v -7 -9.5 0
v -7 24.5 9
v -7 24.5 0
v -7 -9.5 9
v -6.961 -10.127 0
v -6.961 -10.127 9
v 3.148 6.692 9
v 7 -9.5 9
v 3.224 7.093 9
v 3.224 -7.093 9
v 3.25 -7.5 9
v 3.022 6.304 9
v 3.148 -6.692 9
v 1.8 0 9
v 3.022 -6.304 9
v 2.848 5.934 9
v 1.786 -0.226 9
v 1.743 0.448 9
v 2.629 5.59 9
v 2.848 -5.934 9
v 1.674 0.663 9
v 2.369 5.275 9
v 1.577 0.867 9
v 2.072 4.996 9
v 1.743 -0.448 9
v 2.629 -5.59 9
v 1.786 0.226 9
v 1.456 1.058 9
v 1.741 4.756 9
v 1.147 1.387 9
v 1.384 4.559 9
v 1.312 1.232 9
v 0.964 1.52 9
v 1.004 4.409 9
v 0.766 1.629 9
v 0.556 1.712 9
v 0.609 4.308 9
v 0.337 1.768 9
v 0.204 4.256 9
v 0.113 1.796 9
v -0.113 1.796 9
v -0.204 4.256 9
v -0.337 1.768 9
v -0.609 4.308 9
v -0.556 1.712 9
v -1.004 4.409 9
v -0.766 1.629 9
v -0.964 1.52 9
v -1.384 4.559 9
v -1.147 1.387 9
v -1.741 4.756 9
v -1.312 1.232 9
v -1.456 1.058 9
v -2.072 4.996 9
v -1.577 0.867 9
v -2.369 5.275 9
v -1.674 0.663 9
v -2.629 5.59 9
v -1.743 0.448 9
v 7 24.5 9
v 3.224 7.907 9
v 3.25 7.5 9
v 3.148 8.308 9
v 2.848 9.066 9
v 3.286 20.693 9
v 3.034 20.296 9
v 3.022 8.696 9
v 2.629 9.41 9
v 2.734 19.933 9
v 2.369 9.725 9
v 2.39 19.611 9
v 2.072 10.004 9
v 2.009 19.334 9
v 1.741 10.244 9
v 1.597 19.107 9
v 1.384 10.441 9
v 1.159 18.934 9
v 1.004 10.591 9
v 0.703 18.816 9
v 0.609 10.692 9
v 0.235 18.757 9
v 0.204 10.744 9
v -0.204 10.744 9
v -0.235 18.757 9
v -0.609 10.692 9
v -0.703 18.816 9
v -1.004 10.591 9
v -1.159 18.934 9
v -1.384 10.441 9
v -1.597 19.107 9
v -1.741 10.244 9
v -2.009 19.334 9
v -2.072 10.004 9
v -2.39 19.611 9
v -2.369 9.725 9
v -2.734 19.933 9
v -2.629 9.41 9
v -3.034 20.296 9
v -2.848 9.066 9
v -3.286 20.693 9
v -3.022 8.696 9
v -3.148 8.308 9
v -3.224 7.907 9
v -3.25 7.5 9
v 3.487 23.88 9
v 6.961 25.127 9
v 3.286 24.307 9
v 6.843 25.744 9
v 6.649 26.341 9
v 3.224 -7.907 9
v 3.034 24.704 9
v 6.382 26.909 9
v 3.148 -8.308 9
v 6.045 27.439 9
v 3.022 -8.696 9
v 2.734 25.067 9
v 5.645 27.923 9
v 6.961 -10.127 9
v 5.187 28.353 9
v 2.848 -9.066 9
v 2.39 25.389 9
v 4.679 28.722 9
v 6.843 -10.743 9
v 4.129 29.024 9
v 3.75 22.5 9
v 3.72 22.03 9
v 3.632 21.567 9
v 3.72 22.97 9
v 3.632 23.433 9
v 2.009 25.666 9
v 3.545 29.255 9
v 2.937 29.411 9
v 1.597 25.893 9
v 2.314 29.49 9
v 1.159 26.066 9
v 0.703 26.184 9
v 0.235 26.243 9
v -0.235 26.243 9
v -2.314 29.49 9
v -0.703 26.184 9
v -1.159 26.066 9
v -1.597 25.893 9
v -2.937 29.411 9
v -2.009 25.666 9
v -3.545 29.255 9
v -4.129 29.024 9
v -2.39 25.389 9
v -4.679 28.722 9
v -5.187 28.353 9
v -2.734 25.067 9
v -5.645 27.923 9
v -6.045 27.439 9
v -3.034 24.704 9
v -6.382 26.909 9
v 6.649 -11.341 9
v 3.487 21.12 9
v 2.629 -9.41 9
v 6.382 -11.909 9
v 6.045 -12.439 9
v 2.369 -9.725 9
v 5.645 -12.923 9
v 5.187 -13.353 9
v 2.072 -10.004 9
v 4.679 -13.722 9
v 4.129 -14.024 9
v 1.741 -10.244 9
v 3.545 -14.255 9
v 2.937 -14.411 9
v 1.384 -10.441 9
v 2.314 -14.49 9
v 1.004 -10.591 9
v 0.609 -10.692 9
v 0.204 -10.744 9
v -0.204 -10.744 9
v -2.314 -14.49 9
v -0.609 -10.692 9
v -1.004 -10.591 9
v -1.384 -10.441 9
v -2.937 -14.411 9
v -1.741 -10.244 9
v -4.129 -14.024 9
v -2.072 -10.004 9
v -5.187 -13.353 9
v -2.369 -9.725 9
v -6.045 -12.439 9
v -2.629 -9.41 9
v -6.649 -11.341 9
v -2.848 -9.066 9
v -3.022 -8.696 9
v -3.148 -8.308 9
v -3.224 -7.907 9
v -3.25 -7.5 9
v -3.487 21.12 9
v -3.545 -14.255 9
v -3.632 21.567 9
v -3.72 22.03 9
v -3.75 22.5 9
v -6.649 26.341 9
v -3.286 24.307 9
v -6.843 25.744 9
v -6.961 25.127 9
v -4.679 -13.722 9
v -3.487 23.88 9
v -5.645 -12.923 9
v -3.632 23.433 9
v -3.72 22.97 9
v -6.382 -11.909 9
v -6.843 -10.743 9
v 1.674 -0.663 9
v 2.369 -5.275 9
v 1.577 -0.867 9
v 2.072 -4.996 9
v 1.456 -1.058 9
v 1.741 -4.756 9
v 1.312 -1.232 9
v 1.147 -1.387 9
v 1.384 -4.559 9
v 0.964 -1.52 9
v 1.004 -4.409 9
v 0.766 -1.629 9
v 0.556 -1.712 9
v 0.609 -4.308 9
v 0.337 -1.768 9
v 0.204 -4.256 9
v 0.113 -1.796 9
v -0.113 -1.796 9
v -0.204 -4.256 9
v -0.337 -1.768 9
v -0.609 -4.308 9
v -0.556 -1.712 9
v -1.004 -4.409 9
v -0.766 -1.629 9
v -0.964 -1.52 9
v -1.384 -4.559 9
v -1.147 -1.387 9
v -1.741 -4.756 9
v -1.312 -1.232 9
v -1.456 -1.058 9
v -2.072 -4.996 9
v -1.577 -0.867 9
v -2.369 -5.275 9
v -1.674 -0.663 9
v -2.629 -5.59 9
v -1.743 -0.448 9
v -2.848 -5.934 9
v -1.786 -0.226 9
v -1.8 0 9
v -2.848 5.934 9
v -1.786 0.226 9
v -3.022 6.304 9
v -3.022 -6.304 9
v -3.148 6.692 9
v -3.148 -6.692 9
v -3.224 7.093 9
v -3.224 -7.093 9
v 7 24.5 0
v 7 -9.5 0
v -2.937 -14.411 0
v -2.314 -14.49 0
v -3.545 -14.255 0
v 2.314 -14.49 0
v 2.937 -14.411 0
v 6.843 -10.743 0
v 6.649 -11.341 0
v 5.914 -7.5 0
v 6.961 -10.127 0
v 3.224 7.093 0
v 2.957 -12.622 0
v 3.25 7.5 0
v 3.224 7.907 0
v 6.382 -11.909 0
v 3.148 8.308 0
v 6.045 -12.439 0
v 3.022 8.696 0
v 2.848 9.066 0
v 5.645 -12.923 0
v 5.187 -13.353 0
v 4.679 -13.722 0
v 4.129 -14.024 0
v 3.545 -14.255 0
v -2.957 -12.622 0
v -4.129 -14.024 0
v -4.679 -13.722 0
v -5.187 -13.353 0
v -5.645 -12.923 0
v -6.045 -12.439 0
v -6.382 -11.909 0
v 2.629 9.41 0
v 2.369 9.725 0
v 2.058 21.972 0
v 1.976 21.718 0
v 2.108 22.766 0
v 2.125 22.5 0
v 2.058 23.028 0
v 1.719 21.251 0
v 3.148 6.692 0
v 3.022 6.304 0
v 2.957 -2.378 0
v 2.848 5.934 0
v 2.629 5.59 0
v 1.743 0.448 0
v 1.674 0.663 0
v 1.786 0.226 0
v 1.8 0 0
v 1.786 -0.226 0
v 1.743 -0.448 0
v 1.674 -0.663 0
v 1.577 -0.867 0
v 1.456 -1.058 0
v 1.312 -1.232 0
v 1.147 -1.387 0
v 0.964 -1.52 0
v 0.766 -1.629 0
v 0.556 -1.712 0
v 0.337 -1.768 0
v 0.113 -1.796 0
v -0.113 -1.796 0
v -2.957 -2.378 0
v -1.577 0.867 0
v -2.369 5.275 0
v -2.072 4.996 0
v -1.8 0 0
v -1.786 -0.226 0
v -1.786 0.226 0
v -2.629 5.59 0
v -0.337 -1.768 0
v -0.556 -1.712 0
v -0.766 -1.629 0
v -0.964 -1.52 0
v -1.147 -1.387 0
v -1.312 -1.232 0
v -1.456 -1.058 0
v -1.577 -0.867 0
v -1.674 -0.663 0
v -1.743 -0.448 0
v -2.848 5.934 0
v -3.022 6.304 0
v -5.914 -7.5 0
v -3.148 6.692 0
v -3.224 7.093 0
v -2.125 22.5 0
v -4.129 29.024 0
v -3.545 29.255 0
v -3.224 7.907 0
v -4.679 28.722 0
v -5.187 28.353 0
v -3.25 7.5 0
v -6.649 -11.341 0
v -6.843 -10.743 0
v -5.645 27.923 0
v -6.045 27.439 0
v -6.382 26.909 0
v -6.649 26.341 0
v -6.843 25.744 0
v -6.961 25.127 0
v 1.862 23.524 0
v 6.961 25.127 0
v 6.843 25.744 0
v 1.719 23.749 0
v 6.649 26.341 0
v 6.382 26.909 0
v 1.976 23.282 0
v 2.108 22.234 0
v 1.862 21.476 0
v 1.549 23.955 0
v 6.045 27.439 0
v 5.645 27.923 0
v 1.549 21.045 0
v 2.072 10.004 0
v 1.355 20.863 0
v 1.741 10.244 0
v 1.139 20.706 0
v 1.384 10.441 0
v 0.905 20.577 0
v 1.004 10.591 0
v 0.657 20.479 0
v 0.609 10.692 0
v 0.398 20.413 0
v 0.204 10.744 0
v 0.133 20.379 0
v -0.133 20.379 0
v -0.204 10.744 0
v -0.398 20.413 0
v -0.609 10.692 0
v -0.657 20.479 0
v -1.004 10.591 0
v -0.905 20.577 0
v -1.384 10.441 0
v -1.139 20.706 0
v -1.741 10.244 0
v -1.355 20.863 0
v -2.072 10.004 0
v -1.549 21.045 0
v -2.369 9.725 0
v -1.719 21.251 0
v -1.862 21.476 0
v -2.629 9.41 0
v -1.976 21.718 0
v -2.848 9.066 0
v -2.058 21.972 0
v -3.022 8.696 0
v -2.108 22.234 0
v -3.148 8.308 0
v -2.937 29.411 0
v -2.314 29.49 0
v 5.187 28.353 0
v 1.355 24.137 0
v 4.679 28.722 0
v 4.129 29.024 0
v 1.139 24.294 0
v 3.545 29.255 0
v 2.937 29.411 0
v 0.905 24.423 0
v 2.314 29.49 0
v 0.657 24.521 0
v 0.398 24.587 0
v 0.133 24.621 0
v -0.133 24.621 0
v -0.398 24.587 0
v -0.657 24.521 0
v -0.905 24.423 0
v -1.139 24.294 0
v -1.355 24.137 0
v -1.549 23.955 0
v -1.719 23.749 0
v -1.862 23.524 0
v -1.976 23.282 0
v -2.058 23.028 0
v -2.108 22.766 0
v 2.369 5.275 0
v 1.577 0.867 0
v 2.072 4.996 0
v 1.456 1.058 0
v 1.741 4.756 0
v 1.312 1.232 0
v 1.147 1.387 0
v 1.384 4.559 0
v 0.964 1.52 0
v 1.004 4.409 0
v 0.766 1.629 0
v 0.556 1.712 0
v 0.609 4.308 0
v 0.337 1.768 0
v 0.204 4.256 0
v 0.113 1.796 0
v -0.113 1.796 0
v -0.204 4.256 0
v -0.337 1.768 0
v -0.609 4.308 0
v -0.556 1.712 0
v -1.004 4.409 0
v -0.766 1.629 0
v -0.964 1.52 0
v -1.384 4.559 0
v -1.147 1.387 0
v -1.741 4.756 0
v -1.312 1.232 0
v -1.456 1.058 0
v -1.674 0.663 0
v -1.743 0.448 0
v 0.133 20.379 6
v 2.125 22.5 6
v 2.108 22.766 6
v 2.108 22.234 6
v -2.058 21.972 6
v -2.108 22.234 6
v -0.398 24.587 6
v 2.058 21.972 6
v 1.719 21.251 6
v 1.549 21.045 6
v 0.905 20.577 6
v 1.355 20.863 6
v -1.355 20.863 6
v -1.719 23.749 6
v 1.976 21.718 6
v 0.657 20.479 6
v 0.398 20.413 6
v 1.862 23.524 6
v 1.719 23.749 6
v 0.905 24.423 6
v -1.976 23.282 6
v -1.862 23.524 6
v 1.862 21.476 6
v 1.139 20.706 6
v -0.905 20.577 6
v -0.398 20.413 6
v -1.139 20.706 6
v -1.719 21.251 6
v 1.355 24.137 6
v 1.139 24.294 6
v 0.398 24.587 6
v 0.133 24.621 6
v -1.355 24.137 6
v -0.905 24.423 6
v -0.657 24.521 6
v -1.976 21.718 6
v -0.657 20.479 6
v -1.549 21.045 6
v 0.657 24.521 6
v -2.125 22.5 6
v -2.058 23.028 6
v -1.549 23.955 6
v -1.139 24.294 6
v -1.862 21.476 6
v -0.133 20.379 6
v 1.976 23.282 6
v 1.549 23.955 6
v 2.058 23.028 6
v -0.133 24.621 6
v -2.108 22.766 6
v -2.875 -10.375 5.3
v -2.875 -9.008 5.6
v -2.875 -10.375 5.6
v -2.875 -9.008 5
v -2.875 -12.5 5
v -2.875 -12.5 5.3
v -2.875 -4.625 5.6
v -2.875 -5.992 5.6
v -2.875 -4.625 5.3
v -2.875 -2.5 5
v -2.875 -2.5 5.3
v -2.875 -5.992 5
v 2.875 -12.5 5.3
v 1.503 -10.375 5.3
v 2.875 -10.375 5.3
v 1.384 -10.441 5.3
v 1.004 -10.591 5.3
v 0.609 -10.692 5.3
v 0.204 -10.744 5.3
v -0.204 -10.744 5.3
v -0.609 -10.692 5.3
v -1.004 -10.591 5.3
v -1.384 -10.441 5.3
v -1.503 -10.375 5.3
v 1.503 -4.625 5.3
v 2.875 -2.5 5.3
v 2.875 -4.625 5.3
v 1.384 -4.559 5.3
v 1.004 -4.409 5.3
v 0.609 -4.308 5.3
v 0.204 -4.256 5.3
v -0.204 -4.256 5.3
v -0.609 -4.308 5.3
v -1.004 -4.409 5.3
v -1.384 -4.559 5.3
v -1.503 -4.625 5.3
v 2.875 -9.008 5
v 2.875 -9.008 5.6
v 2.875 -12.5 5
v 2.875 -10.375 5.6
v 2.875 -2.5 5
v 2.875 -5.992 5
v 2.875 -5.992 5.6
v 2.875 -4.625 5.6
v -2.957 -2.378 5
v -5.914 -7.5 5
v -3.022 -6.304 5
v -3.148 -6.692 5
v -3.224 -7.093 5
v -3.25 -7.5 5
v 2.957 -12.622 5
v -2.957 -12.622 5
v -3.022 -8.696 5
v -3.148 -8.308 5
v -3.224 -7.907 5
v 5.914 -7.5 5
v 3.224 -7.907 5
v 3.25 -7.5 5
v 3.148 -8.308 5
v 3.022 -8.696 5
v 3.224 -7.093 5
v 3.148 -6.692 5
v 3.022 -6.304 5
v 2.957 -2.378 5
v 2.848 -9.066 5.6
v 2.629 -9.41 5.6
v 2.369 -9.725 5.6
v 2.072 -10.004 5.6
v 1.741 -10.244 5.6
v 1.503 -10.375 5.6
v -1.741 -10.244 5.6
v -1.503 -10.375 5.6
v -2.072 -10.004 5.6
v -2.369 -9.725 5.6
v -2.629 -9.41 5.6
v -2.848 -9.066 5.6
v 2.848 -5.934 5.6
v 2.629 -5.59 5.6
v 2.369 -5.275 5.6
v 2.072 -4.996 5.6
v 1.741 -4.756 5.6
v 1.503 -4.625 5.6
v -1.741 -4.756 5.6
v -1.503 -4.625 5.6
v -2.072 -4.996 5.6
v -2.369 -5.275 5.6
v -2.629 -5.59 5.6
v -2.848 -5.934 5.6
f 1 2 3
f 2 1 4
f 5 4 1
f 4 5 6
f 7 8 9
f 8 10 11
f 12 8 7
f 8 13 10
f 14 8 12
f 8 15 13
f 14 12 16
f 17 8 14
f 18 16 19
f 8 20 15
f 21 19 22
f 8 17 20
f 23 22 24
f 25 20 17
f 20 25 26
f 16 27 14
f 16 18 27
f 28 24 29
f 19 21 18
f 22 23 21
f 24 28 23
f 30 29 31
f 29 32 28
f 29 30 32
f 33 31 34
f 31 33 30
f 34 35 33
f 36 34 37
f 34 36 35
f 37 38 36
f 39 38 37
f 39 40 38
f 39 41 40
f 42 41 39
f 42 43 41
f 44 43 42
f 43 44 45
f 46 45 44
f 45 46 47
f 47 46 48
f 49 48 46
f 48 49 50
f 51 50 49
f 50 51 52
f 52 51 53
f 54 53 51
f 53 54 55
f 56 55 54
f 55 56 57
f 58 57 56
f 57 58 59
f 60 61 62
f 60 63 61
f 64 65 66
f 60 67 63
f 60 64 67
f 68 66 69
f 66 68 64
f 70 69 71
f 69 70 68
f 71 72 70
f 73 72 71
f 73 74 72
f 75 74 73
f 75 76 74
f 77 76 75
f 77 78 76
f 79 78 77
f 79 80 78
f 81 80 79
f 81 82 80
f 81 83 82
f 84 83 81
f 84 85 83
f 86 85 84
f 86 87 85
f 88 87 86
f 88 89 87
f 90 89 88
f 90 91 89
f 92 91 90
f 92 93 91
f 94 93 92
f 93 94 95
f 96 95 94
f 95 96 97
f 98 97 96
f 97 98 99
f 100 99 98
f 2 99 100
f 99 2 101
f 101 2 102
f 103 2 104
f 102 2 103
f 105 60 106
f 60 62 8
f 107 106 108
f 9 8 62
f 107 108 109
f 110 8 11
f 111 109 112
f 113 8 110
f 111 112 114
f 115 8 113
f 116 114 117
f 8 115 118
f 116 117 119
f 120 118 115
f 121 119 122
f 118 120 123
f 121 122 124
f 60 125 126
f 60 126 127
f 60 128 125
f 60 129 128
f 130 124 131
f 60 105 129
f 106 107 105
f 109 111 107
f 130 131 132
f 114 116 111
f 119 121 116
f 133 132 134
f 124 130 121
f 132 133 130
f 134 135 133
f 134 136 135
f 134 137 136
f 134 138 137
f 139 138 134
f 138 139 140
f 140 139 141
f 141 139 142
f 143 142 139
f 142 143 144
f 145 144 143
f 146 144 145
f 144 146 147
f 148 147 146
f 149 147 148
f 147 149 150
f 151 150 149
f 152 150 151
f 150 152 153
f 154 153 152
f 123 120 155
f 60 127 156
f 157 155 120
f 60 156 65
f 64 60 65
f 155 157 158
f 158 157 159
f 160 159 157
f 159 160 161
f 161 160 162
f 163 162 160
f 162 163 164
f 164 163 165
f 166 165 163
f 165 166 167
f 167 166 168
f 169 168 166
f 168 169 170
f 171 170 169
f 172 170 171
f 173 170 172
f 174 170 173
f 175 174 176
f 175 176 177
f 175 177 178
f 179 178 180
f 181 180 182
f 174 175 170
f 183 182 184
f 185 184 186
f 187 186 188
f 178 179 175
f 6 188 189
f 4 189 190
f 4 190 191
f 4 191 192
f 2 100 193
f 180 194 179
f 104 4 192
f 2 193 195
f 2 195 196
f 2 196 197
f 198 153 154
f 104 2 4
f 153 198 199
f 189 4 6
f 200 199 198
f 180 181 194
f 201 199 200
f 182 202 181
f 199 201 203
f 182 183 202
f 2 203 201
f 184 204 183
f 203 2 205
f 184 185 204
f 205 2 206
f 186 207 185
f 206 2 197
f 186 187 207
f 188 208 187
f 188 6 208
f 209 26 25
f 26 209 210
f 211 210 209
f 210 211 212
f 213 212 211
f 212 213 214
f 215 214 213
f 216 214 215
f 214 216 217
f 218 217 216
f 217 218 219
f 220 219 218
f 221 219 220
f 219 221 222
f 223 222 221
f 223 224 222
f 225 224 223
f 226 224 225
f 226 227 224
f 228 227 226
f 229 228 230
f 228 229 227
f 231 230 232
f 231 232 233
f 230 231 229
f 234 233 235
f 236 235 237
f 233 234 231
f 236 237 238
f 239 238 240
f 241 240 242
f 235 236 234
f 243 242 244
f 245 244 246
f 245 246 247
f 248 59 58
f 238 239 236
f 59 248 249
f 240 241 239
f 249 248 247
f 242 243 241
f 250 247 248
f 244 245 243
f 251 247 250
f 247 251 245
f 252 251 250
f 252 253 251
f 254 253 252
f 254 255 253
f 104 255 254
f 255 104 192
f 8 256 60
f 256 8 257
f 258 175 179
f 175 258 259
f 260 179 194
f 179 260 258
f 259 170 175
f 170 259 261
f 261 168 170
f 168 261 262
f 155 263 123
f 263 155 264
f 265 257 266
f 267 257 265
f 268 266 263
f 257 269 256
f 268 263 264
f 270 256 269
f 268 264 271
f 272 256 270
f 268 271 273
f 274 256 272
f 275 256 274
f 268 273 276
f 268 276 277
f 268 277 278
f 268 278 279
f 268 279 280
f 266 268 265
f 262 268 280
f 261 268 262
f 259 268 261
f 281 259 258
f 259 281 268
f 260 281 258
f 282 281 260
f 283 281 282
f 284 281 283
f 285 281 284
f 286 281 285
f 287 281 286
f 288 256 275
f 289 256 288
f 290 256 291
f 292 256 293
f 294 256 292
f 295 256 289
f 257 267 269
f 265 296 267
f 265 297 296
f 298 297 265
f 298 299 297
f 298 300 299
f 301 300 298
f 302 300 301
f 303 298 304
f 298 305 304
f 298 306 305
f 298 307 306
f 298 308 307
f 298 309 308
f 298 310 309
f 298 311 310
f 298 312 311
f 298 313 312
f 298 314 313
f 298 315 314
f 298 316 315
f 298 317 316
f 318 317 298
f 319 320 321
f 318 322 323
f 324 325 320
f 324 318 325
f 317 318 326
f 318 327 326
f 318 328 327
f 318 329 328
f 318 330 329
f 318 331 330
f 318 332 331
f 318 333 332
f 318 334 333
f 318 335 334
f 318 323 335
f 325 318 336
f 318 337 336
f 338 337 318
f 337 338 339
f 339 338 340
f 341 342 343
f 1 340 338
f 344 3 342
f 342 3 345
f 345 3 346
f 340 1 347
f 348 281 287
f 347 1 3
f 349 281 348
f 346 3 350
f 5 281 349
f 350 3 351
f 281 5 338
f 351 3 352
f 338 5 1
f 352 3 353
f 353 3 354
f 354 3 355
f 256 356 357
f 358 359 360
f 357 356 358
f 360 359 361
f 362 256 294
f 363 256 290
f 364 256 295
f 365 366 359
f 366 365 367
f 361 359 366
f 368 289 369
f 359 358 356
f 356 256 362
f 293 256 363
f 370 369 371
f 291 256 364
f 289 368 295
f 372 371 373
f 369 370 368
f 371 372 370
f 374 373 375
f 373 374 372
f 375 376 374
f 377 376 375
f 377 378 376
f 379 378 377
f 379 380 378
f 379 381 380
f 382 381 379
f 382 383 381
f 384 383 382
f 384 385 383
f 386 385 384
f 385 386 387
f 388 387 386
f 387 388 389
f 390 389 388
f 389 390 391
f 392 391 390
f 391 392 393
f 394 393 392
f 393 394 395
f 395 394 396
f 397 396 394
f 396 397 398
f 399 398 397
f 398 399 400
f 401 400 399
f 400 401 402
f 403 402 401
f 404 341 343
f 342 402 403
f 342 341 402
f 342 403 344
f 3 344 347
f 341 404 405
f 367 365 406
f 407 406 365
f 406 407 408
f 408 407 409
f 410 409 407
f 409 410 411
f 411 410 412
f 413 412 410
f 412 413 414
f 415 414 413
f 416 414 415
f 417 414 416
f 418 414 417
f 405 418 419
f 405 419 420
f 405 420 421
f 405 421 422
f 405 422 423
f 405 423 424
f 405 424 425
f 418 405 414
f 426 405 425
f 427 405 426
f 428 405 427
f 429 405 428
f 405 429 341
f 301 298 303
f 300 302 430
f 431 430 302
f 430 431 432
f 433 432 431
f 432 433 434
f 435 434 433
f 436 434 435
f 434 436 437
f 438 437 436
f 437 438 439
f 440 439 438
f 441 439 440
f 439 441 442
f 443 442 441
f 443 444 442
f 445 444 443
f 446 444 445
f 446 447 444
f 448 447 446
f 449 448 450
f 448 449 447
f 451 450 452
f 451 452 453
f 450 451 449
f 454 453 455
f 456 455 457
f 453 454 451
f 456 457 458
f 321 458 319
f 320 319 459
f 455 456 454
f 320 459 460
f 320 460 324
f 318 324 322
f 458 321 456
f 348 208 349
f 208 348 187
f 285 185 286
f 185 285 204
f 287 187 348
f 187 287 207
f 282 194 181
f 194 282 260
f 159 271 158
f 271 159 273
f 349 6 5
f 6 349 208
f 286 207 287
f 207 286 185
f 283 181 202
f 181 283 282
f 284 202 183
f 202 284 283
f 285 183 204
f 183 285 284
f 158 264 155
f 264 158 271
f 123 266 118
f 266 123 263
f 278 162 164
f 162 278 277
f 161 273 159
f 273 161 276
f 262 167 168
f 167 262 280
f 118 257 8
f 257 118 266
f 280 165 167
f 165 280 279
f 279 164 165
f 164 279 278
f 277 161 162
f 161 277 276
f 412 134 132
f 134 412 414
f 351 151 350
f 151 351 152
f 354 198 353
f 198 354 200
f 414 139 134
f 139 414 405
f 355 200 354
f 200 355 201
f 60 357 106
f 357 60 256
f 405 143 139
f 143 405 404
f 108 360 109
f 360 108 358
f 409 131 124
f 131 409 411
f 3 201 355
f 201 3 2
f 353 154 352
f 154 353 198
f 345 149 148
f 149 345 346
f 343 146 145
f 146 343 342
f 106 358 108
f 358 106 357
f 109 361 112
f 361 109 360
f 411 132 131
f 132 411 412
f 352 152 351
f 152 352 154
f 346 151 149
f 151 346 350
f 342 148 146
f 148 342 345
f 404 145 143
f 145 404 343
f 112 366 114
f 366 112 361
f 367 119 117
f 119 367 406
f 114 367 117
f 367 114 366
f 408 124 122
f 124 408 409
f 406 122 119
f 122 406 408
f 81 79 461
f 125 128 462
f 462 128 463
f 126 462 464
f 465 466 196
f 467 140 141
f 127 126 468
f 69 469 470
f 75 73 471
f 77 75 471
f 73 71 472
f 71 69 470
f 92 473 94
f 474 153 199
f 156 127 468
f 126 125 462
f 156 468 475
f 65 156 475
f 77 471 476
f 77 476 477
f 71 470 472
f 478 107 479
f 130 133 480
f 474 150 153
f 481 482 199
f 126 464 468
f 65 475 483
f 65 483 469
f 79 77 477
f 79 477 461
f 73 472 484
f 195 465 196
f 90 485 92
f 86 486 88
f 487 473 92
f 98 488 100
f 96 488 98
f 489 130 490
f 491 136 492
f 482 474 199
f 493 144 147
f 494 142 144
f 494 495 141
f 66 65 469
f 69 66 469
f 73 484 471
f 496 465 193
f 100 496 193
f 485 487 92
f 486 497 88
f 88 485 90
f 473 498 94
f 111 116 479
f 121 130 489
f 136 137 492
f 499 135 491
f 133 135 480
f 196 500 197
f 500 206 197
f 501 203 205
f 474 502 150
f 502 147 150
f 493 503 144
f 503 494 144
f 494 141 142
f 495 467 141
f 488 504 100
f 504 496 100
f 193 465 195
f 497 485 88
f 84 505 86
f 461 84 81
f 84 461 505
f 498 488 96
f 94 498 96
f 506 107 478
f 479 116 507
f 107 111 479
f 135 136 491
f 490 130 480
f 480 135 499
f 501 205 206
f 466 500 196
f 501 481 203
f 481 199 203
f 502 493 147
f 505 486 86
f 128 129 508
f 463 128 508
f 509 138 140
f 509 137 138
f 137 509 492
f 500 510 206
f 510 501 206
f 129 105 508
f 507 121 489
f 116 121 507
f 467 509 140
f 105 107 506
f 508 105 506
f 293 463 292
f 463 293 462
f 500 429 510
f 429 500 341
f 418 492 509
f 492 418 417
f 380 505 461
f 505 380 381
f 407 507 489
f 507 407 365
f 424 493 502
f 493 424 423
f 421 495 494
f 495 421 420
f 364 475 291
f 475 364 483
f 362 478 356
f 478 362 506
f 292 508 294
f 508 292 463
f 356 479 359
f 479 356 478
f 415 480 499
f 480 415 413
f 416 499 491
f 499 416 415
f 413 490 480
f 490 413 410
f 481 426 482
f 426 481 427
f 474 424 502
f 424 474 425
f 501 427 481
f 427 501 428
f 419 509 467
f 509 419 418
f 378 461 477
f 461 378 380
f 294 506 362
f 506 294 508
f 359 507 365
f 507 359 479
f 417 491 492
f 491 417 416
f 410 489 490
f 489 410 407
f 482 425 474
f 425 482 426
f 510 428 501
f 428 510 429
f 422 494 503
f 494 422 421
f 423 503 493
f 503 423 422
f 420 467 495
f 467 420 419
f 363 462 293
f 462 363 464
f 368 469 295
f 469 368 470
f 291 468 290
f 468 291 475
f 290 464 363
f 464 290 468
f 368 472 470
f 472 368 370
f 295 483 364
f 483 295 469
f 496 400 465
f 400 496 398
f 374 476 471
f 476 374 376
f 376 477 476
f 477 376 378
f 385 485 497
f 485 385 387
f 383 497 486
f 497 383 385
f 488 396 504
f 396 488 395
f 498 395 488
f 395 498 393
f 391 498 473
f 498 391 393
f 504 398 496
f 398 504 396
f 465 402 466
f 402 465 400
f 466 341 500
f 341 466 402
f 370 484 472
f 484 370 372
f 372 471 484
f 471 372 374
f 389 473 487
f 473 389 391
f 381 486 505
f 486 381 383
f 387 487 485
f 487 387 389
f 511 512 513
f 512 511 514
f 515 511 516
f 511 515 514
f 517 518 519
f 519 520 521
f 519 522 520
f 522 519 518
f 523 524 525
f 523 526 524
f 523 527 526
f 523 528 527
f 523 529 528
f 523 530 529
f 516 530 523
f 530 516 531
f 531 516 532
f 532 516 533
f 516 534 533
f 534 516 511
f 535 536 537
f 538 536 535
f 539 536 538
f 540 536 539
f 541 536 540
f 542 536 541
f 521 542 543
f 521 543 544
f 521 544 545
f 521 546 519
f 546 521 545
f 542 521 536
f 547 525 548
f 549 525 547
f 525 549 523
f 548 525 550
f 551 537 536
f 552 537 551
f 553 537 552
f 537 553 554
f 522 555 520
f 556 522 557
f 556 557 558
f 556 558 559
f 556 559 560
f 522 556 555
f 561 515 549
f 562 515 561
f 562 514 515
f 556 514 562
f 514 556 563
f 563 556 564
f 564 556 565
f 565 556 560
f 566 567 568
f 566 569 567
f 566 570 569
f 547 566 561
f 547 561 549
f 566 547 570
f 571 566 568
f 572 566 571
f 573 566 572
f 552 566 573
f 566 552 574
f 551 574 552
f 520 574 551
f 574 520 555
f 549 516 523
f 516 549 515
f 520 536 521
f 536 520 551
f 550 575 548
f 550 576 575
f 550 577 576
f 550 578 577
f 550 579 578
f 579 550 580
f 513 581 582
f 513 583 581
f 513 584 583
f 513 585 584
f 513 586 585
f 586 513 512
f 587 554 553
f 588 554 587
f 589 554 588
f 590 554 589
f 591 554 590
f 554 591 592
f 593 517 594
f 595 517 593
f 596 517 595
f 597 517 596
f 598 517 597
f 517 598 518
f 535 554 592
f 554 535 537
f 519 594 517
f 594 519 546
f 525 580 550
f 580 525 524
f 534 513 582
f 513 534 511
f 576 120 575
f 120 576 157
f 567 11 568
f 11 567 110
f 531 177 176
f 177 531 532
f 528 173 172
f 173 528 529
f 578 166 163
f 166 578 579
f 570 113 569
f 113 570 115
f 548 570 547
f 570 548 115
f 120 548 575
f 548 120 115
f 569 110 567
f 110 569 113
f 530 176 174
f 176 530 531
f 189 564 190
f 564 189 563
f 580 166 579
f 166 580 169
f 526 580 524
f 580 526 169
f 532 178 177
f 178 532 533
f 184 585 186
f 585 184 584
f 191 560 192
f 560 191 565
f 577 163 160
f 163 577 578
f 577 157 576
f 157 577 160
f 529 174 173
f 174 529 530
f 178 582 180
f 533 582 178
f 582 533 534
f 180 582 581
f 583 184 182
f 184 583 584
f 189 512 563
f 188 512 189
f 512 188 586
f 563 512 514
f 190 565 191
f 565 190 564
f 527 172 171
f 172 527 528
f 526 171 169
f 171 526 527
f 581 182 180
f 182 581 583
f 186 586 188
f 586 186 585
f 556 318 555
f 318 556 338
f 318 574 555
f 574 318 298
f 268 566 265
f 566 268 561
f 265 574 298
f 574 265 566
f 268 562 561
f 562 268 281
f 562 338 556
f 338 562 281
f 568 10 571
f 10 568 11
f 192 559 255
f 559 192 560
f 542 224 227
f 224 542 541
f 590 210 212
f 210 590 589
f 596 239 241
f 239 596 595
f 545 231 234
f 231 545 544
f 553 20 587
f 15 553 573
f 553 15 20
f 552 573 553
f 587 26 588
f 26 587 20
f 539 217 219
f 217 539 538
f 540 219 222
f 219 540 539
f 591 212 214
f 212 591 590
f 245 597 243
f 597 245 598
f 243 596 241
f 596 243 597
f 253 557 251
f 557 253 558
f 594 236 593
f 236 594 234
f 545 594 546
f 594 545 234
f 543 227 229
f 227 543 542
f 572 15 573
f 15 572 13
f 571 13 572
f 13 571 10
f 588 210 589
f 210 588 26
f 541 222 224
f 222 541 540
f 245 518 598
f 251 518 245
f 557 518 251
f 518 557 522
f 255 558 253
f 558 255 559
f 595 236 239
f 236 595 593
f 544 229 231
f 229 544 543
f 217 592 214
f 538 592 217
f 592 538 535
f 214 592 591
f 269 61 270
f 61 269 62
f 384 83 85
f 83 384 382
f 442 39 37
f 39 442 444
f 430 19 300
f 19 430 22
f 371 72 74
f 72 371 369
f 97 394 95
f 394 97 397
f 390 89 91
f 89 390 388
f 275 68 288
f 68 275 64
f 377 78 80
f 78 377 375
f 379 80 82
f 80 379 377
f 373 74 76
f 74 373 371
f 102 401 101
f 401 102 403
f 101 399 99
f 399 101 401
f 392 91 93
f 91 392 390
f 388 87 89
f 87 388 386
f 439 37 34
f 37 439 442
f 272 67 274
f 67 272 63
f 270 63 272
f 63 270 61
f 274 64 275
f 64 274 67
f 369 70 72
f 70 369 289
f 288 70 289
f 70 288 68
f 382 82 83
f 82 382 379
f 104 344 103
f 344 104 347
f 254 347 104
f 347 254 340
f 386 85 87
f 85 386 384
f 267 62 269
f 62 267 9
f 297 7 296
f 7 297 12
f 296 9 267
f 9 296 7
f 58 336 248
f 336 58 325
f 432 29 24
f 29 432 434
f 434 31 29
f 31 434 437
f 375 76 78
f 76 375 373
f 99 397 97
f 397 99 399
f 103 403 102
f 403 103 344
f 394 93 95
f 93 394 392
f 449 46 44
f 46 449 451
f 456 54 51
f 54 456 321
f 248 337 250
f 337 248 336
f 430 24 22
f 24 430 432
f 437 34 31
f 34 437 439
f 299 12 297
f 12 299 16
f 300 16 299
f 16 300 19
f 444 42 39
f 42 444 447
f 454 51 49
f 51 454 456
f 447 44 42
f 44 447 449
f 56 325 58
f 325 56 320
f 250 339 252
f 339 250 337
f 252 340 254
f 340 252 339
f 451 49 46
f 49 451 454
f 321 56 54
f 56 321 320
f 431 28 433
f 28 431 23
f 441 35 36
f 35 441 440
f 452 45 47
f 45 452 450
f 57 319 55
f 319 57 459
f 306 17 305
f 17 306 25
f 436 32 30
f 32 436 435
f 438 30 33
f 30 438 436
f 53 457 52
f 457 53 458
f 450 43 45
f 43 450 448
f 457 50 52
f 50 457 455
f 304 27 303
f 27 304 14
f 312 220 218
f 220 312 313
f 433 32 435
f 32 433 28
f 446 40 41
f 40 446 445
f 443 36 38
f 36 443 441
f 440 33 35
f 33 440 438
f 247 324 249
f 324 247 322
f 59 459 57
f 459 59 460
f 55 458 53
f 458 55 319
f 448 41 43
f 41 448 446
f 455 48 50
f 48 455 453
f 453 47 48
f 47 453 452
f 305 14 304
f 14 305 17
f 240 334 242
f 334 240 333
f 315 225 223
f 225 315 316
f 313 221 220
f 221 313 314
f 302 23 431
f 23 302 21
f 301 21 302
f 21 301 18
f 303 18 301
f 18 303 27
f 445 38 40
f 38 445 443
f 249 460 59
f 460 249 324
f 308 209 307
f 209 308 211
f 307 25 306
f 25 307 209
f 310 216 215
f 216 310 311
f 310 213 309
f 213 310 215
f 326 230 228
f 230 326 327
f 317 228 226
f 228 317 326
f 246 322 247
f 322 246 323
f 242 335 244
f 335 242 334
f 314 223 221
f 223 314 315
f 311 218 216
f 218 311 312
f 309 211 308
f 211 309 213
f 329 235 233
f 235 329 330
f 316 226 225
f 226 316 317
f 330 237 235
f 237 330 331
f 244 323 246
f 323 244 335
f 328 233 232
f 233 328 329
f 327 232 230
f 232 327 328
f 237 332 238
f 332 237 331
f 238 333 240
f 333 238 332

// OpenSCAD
$fn = 50;


difference() {
	union() {
		hull() {
			translate(v = [-2.0000000000, 9.5000000000, 0]) {
				cylinder(h = 9, r = 5);
			}
			translate(v = [2.0000000000, 9.5000000000, 0]) {
				cylinder(h = 9, r = 5);
			}
			translate(v = [-2.0000000000, -9.5000000000, 0]) {
				cylinder(h = 9, r = 5);
			}
			translate(v = [2.0000000000, -9.5000000000, 0]) {
				cylinder(h = 9, r = 5);
			}
		}
		translate(v = [0.0000000000, 15.0000000000, 0]) {
			hull() {
				translate(v = [-2.0000000000, 9.5000000000, 0]) {
					cylinder(h = 9, r = 5);
				}
				translate(v = [2.0000000000, 9.5000000000, 0]) {
					cylinder(h = 9, r = 5);
				}
				translate(v = [-2.0000000000, -9.5000000000, 0]) {
					cylinder(h = 9, r = 5);
				}
				translate(v = [2.0000000000, -9.5000000000, 0]) {
					cylinder(h = 9, r = 5);
				}
			}
		}
		translate(v = [0.0000000000, 15.0000000000, 0]) {
			hull() {
				translate(v = [-2.0000000000, 9.5000000000, 0]) {
					cylinder(h = 9, r = 5);
				}
				translate(v = [2.0000000000, 9.5000000000, 0]) {
					cylinder(h = 9, r = 5);
				}
				translate(v = [-2.0000000000, -9.5000000000, 0]) {
					cylinder(h = 9, r = 5);
				}
				translate(v = [2.0000000000, -9.5000000000, 0]) {
					cylinder(h = 9, r = 5);
				}
			}
		}
	}
	union() {
		translate(v = [0.0000000000, 22.5000000000, 9]) {
			rotate(a = [0, 0, 0]) {
				difference() {
					union() {
						#translate(v = [0, 0, -9.0000000000]) {
							cylinder(h = 9, r = 2.0000000000);
						}
						#translate(v = [0, 0, -3]) {
							cylinder(h = 3, r1 = 2.1250000000, r2 = 3.7500000000);
						}
						#translate(v = [0, 0, -9.0000000000]) {
							cylinder(h = 9, r = 2.1250000000);
						}
						#translate(v = [0, 0, -9.0000000000]) {
							cylinder(h = 9, r = 2.0000000000);
						}
					}
					union();
				}
			}
		}
		translate(v = [0.0000000000, 22.5000000000, 9]) {
			rotate(a = [0, 0, 0]) {
				difference() {
					union() {
						#translate(v = [0, 0, -9.0000000000]) {
							cylinder(h = 9, r = 2.0000000000);
						}
						#translate(v = [0, 0, -3]) {
							cylinder(h = 3, r1 = 2.1250000000, r2 = 3.7500000000);
						}
						#translate(v = [0, 0, -9.0000000000]) {
							cylinder(h = 9, r = 2.1250000000);
						}
						#translate(v = [0, 0, -9.0000000000]) {
							cylinder(h = 9, r = 2.0000000000);
						}
					}
					union();
				}
			}
		}
		translate(v = [0.0000000000, -7.5000000000, 0]) {
			rotate(a = [0, 0, 0]) {
				difference() {
					union() {
						#translate(v = [-2.8750000000, -5.0000000000, -0.3000000000]) {
							cube(size = [5.7500000000, 10, 0.3000000000]);
						}
						#translate(v = [-2.8750000000, -2.8750000000, -0.6000000000]) {
							cube(size = [5.7500000000, 5.7500000000, 0.3000000000]);
						}
						#translate(v = [-2.8750000000, -5.0000000000, 5]) {
							cube(size = [5.7500000000, 10, 0.3000000000]);
						}
						#translate(v = [-2.8750000000, -2.8750000000, 5.3000000000]) {
							cube(size = [5.7500000000, 5.7500000000, 0.3000000000]);
						}
						#translate(v = [0, 0, -100.0000000000]) {
							cylinder(h = 200, r = 3.2500000000);
						}
						#linear_extrude(height = 5) {
							polygon(points = [[5.9142500000, 0.0000000000], [2.9571250000, 5.1218907443], [-2.9571250000, 5.1218907443], [-5.9142500000, 0.0000000000], [-2.9571250000, -5.1218907443], [2.9571250000, -5.1218907443]]);
						}
						#translate(v = [-2.8750000000, -5.0000000000, -0.3000000000]) {
							cube(size = [5.7500000000, 10, 0.3000000000]);
						}
						#translate(v = [-2.8750000000, -2.8750000000, -0.6000000000]) {
							cube(size = [5.7500000000, 5.7500000000, 0.3000000000]);
						}
						#translate(v = [-2.8750000000, -5.0000000000, 5]) {
							cube(size = [5.7500000000, 10, 0.3000000000]);
						}
						#translate(v = [-2.8750000000, -2.8750000000, 5.3000000000]) {
							cube(size = [5.7500000000, 5.7500000000, 0.3000000000]);
						}
						#translate(v = [0, 0, -100.0000000000]) {
							cylinder(h = 200, r = 3.2500000000);
						}
						#translate(v = [-2.8750000000, -5.0000000000, -0.3000000000]) {
							cube(size = [5.7500000000, 10, 0.3000000000]);
						}
						#translate(v = [-2.8750000000, -2.8750000000, -0.6000000000]) {
							cube(size = [5.7500000000, 5.7500000000, 0.3000000000]);
						}
						#translate(v = [-2.8750000000, -5.0000000000, 5]) {
							cube(size = [5.7500000000, 10, 0.3000000000]);
						}
						#translate(v = [-2.8750000000, -2.8750000000, 5.3000000000]) {
							cube(size = [5.7500000000, 5.7500000000, 0.3000000000]);
						}
						#translate(v = [0, 0, -100.0000000000]) {
							cylinder(h = 200, r = 3.2500000000);
						}
					}
					union();
				}
			}
		}
		translate(v = [0.0000000000, -7.5000000000, 0]) {
			translate(v = [0, 0, -100]) {
				cylinder(h = 200, r = 3.2500000000);
			}
		}
		translate(v = [0.0000000000, 7.5000000000, 0]) {
			translate(v = [0, 0, -100]) {
				cylinder(h = 200, r = 3.2500000000);
			}
		}
		translate(v = [0.0000000000, -7.5000000000, 0]) {
			translate(v = [0, 0, -100]) {
				cylinder(h = 200, r = 1.8000000000);
			}
		}
		translate(v = [0, 0, -100]) {
			cylinder(h = 200, r = 1.8000000000);
		}
		translate(v = [0.0000000000, 7.5000000000, 0]) {
			translate(v = [0, 0, -100]) {
				cylinder(h = 200, r = 1.8000000000);
			}
		}
	}
}
